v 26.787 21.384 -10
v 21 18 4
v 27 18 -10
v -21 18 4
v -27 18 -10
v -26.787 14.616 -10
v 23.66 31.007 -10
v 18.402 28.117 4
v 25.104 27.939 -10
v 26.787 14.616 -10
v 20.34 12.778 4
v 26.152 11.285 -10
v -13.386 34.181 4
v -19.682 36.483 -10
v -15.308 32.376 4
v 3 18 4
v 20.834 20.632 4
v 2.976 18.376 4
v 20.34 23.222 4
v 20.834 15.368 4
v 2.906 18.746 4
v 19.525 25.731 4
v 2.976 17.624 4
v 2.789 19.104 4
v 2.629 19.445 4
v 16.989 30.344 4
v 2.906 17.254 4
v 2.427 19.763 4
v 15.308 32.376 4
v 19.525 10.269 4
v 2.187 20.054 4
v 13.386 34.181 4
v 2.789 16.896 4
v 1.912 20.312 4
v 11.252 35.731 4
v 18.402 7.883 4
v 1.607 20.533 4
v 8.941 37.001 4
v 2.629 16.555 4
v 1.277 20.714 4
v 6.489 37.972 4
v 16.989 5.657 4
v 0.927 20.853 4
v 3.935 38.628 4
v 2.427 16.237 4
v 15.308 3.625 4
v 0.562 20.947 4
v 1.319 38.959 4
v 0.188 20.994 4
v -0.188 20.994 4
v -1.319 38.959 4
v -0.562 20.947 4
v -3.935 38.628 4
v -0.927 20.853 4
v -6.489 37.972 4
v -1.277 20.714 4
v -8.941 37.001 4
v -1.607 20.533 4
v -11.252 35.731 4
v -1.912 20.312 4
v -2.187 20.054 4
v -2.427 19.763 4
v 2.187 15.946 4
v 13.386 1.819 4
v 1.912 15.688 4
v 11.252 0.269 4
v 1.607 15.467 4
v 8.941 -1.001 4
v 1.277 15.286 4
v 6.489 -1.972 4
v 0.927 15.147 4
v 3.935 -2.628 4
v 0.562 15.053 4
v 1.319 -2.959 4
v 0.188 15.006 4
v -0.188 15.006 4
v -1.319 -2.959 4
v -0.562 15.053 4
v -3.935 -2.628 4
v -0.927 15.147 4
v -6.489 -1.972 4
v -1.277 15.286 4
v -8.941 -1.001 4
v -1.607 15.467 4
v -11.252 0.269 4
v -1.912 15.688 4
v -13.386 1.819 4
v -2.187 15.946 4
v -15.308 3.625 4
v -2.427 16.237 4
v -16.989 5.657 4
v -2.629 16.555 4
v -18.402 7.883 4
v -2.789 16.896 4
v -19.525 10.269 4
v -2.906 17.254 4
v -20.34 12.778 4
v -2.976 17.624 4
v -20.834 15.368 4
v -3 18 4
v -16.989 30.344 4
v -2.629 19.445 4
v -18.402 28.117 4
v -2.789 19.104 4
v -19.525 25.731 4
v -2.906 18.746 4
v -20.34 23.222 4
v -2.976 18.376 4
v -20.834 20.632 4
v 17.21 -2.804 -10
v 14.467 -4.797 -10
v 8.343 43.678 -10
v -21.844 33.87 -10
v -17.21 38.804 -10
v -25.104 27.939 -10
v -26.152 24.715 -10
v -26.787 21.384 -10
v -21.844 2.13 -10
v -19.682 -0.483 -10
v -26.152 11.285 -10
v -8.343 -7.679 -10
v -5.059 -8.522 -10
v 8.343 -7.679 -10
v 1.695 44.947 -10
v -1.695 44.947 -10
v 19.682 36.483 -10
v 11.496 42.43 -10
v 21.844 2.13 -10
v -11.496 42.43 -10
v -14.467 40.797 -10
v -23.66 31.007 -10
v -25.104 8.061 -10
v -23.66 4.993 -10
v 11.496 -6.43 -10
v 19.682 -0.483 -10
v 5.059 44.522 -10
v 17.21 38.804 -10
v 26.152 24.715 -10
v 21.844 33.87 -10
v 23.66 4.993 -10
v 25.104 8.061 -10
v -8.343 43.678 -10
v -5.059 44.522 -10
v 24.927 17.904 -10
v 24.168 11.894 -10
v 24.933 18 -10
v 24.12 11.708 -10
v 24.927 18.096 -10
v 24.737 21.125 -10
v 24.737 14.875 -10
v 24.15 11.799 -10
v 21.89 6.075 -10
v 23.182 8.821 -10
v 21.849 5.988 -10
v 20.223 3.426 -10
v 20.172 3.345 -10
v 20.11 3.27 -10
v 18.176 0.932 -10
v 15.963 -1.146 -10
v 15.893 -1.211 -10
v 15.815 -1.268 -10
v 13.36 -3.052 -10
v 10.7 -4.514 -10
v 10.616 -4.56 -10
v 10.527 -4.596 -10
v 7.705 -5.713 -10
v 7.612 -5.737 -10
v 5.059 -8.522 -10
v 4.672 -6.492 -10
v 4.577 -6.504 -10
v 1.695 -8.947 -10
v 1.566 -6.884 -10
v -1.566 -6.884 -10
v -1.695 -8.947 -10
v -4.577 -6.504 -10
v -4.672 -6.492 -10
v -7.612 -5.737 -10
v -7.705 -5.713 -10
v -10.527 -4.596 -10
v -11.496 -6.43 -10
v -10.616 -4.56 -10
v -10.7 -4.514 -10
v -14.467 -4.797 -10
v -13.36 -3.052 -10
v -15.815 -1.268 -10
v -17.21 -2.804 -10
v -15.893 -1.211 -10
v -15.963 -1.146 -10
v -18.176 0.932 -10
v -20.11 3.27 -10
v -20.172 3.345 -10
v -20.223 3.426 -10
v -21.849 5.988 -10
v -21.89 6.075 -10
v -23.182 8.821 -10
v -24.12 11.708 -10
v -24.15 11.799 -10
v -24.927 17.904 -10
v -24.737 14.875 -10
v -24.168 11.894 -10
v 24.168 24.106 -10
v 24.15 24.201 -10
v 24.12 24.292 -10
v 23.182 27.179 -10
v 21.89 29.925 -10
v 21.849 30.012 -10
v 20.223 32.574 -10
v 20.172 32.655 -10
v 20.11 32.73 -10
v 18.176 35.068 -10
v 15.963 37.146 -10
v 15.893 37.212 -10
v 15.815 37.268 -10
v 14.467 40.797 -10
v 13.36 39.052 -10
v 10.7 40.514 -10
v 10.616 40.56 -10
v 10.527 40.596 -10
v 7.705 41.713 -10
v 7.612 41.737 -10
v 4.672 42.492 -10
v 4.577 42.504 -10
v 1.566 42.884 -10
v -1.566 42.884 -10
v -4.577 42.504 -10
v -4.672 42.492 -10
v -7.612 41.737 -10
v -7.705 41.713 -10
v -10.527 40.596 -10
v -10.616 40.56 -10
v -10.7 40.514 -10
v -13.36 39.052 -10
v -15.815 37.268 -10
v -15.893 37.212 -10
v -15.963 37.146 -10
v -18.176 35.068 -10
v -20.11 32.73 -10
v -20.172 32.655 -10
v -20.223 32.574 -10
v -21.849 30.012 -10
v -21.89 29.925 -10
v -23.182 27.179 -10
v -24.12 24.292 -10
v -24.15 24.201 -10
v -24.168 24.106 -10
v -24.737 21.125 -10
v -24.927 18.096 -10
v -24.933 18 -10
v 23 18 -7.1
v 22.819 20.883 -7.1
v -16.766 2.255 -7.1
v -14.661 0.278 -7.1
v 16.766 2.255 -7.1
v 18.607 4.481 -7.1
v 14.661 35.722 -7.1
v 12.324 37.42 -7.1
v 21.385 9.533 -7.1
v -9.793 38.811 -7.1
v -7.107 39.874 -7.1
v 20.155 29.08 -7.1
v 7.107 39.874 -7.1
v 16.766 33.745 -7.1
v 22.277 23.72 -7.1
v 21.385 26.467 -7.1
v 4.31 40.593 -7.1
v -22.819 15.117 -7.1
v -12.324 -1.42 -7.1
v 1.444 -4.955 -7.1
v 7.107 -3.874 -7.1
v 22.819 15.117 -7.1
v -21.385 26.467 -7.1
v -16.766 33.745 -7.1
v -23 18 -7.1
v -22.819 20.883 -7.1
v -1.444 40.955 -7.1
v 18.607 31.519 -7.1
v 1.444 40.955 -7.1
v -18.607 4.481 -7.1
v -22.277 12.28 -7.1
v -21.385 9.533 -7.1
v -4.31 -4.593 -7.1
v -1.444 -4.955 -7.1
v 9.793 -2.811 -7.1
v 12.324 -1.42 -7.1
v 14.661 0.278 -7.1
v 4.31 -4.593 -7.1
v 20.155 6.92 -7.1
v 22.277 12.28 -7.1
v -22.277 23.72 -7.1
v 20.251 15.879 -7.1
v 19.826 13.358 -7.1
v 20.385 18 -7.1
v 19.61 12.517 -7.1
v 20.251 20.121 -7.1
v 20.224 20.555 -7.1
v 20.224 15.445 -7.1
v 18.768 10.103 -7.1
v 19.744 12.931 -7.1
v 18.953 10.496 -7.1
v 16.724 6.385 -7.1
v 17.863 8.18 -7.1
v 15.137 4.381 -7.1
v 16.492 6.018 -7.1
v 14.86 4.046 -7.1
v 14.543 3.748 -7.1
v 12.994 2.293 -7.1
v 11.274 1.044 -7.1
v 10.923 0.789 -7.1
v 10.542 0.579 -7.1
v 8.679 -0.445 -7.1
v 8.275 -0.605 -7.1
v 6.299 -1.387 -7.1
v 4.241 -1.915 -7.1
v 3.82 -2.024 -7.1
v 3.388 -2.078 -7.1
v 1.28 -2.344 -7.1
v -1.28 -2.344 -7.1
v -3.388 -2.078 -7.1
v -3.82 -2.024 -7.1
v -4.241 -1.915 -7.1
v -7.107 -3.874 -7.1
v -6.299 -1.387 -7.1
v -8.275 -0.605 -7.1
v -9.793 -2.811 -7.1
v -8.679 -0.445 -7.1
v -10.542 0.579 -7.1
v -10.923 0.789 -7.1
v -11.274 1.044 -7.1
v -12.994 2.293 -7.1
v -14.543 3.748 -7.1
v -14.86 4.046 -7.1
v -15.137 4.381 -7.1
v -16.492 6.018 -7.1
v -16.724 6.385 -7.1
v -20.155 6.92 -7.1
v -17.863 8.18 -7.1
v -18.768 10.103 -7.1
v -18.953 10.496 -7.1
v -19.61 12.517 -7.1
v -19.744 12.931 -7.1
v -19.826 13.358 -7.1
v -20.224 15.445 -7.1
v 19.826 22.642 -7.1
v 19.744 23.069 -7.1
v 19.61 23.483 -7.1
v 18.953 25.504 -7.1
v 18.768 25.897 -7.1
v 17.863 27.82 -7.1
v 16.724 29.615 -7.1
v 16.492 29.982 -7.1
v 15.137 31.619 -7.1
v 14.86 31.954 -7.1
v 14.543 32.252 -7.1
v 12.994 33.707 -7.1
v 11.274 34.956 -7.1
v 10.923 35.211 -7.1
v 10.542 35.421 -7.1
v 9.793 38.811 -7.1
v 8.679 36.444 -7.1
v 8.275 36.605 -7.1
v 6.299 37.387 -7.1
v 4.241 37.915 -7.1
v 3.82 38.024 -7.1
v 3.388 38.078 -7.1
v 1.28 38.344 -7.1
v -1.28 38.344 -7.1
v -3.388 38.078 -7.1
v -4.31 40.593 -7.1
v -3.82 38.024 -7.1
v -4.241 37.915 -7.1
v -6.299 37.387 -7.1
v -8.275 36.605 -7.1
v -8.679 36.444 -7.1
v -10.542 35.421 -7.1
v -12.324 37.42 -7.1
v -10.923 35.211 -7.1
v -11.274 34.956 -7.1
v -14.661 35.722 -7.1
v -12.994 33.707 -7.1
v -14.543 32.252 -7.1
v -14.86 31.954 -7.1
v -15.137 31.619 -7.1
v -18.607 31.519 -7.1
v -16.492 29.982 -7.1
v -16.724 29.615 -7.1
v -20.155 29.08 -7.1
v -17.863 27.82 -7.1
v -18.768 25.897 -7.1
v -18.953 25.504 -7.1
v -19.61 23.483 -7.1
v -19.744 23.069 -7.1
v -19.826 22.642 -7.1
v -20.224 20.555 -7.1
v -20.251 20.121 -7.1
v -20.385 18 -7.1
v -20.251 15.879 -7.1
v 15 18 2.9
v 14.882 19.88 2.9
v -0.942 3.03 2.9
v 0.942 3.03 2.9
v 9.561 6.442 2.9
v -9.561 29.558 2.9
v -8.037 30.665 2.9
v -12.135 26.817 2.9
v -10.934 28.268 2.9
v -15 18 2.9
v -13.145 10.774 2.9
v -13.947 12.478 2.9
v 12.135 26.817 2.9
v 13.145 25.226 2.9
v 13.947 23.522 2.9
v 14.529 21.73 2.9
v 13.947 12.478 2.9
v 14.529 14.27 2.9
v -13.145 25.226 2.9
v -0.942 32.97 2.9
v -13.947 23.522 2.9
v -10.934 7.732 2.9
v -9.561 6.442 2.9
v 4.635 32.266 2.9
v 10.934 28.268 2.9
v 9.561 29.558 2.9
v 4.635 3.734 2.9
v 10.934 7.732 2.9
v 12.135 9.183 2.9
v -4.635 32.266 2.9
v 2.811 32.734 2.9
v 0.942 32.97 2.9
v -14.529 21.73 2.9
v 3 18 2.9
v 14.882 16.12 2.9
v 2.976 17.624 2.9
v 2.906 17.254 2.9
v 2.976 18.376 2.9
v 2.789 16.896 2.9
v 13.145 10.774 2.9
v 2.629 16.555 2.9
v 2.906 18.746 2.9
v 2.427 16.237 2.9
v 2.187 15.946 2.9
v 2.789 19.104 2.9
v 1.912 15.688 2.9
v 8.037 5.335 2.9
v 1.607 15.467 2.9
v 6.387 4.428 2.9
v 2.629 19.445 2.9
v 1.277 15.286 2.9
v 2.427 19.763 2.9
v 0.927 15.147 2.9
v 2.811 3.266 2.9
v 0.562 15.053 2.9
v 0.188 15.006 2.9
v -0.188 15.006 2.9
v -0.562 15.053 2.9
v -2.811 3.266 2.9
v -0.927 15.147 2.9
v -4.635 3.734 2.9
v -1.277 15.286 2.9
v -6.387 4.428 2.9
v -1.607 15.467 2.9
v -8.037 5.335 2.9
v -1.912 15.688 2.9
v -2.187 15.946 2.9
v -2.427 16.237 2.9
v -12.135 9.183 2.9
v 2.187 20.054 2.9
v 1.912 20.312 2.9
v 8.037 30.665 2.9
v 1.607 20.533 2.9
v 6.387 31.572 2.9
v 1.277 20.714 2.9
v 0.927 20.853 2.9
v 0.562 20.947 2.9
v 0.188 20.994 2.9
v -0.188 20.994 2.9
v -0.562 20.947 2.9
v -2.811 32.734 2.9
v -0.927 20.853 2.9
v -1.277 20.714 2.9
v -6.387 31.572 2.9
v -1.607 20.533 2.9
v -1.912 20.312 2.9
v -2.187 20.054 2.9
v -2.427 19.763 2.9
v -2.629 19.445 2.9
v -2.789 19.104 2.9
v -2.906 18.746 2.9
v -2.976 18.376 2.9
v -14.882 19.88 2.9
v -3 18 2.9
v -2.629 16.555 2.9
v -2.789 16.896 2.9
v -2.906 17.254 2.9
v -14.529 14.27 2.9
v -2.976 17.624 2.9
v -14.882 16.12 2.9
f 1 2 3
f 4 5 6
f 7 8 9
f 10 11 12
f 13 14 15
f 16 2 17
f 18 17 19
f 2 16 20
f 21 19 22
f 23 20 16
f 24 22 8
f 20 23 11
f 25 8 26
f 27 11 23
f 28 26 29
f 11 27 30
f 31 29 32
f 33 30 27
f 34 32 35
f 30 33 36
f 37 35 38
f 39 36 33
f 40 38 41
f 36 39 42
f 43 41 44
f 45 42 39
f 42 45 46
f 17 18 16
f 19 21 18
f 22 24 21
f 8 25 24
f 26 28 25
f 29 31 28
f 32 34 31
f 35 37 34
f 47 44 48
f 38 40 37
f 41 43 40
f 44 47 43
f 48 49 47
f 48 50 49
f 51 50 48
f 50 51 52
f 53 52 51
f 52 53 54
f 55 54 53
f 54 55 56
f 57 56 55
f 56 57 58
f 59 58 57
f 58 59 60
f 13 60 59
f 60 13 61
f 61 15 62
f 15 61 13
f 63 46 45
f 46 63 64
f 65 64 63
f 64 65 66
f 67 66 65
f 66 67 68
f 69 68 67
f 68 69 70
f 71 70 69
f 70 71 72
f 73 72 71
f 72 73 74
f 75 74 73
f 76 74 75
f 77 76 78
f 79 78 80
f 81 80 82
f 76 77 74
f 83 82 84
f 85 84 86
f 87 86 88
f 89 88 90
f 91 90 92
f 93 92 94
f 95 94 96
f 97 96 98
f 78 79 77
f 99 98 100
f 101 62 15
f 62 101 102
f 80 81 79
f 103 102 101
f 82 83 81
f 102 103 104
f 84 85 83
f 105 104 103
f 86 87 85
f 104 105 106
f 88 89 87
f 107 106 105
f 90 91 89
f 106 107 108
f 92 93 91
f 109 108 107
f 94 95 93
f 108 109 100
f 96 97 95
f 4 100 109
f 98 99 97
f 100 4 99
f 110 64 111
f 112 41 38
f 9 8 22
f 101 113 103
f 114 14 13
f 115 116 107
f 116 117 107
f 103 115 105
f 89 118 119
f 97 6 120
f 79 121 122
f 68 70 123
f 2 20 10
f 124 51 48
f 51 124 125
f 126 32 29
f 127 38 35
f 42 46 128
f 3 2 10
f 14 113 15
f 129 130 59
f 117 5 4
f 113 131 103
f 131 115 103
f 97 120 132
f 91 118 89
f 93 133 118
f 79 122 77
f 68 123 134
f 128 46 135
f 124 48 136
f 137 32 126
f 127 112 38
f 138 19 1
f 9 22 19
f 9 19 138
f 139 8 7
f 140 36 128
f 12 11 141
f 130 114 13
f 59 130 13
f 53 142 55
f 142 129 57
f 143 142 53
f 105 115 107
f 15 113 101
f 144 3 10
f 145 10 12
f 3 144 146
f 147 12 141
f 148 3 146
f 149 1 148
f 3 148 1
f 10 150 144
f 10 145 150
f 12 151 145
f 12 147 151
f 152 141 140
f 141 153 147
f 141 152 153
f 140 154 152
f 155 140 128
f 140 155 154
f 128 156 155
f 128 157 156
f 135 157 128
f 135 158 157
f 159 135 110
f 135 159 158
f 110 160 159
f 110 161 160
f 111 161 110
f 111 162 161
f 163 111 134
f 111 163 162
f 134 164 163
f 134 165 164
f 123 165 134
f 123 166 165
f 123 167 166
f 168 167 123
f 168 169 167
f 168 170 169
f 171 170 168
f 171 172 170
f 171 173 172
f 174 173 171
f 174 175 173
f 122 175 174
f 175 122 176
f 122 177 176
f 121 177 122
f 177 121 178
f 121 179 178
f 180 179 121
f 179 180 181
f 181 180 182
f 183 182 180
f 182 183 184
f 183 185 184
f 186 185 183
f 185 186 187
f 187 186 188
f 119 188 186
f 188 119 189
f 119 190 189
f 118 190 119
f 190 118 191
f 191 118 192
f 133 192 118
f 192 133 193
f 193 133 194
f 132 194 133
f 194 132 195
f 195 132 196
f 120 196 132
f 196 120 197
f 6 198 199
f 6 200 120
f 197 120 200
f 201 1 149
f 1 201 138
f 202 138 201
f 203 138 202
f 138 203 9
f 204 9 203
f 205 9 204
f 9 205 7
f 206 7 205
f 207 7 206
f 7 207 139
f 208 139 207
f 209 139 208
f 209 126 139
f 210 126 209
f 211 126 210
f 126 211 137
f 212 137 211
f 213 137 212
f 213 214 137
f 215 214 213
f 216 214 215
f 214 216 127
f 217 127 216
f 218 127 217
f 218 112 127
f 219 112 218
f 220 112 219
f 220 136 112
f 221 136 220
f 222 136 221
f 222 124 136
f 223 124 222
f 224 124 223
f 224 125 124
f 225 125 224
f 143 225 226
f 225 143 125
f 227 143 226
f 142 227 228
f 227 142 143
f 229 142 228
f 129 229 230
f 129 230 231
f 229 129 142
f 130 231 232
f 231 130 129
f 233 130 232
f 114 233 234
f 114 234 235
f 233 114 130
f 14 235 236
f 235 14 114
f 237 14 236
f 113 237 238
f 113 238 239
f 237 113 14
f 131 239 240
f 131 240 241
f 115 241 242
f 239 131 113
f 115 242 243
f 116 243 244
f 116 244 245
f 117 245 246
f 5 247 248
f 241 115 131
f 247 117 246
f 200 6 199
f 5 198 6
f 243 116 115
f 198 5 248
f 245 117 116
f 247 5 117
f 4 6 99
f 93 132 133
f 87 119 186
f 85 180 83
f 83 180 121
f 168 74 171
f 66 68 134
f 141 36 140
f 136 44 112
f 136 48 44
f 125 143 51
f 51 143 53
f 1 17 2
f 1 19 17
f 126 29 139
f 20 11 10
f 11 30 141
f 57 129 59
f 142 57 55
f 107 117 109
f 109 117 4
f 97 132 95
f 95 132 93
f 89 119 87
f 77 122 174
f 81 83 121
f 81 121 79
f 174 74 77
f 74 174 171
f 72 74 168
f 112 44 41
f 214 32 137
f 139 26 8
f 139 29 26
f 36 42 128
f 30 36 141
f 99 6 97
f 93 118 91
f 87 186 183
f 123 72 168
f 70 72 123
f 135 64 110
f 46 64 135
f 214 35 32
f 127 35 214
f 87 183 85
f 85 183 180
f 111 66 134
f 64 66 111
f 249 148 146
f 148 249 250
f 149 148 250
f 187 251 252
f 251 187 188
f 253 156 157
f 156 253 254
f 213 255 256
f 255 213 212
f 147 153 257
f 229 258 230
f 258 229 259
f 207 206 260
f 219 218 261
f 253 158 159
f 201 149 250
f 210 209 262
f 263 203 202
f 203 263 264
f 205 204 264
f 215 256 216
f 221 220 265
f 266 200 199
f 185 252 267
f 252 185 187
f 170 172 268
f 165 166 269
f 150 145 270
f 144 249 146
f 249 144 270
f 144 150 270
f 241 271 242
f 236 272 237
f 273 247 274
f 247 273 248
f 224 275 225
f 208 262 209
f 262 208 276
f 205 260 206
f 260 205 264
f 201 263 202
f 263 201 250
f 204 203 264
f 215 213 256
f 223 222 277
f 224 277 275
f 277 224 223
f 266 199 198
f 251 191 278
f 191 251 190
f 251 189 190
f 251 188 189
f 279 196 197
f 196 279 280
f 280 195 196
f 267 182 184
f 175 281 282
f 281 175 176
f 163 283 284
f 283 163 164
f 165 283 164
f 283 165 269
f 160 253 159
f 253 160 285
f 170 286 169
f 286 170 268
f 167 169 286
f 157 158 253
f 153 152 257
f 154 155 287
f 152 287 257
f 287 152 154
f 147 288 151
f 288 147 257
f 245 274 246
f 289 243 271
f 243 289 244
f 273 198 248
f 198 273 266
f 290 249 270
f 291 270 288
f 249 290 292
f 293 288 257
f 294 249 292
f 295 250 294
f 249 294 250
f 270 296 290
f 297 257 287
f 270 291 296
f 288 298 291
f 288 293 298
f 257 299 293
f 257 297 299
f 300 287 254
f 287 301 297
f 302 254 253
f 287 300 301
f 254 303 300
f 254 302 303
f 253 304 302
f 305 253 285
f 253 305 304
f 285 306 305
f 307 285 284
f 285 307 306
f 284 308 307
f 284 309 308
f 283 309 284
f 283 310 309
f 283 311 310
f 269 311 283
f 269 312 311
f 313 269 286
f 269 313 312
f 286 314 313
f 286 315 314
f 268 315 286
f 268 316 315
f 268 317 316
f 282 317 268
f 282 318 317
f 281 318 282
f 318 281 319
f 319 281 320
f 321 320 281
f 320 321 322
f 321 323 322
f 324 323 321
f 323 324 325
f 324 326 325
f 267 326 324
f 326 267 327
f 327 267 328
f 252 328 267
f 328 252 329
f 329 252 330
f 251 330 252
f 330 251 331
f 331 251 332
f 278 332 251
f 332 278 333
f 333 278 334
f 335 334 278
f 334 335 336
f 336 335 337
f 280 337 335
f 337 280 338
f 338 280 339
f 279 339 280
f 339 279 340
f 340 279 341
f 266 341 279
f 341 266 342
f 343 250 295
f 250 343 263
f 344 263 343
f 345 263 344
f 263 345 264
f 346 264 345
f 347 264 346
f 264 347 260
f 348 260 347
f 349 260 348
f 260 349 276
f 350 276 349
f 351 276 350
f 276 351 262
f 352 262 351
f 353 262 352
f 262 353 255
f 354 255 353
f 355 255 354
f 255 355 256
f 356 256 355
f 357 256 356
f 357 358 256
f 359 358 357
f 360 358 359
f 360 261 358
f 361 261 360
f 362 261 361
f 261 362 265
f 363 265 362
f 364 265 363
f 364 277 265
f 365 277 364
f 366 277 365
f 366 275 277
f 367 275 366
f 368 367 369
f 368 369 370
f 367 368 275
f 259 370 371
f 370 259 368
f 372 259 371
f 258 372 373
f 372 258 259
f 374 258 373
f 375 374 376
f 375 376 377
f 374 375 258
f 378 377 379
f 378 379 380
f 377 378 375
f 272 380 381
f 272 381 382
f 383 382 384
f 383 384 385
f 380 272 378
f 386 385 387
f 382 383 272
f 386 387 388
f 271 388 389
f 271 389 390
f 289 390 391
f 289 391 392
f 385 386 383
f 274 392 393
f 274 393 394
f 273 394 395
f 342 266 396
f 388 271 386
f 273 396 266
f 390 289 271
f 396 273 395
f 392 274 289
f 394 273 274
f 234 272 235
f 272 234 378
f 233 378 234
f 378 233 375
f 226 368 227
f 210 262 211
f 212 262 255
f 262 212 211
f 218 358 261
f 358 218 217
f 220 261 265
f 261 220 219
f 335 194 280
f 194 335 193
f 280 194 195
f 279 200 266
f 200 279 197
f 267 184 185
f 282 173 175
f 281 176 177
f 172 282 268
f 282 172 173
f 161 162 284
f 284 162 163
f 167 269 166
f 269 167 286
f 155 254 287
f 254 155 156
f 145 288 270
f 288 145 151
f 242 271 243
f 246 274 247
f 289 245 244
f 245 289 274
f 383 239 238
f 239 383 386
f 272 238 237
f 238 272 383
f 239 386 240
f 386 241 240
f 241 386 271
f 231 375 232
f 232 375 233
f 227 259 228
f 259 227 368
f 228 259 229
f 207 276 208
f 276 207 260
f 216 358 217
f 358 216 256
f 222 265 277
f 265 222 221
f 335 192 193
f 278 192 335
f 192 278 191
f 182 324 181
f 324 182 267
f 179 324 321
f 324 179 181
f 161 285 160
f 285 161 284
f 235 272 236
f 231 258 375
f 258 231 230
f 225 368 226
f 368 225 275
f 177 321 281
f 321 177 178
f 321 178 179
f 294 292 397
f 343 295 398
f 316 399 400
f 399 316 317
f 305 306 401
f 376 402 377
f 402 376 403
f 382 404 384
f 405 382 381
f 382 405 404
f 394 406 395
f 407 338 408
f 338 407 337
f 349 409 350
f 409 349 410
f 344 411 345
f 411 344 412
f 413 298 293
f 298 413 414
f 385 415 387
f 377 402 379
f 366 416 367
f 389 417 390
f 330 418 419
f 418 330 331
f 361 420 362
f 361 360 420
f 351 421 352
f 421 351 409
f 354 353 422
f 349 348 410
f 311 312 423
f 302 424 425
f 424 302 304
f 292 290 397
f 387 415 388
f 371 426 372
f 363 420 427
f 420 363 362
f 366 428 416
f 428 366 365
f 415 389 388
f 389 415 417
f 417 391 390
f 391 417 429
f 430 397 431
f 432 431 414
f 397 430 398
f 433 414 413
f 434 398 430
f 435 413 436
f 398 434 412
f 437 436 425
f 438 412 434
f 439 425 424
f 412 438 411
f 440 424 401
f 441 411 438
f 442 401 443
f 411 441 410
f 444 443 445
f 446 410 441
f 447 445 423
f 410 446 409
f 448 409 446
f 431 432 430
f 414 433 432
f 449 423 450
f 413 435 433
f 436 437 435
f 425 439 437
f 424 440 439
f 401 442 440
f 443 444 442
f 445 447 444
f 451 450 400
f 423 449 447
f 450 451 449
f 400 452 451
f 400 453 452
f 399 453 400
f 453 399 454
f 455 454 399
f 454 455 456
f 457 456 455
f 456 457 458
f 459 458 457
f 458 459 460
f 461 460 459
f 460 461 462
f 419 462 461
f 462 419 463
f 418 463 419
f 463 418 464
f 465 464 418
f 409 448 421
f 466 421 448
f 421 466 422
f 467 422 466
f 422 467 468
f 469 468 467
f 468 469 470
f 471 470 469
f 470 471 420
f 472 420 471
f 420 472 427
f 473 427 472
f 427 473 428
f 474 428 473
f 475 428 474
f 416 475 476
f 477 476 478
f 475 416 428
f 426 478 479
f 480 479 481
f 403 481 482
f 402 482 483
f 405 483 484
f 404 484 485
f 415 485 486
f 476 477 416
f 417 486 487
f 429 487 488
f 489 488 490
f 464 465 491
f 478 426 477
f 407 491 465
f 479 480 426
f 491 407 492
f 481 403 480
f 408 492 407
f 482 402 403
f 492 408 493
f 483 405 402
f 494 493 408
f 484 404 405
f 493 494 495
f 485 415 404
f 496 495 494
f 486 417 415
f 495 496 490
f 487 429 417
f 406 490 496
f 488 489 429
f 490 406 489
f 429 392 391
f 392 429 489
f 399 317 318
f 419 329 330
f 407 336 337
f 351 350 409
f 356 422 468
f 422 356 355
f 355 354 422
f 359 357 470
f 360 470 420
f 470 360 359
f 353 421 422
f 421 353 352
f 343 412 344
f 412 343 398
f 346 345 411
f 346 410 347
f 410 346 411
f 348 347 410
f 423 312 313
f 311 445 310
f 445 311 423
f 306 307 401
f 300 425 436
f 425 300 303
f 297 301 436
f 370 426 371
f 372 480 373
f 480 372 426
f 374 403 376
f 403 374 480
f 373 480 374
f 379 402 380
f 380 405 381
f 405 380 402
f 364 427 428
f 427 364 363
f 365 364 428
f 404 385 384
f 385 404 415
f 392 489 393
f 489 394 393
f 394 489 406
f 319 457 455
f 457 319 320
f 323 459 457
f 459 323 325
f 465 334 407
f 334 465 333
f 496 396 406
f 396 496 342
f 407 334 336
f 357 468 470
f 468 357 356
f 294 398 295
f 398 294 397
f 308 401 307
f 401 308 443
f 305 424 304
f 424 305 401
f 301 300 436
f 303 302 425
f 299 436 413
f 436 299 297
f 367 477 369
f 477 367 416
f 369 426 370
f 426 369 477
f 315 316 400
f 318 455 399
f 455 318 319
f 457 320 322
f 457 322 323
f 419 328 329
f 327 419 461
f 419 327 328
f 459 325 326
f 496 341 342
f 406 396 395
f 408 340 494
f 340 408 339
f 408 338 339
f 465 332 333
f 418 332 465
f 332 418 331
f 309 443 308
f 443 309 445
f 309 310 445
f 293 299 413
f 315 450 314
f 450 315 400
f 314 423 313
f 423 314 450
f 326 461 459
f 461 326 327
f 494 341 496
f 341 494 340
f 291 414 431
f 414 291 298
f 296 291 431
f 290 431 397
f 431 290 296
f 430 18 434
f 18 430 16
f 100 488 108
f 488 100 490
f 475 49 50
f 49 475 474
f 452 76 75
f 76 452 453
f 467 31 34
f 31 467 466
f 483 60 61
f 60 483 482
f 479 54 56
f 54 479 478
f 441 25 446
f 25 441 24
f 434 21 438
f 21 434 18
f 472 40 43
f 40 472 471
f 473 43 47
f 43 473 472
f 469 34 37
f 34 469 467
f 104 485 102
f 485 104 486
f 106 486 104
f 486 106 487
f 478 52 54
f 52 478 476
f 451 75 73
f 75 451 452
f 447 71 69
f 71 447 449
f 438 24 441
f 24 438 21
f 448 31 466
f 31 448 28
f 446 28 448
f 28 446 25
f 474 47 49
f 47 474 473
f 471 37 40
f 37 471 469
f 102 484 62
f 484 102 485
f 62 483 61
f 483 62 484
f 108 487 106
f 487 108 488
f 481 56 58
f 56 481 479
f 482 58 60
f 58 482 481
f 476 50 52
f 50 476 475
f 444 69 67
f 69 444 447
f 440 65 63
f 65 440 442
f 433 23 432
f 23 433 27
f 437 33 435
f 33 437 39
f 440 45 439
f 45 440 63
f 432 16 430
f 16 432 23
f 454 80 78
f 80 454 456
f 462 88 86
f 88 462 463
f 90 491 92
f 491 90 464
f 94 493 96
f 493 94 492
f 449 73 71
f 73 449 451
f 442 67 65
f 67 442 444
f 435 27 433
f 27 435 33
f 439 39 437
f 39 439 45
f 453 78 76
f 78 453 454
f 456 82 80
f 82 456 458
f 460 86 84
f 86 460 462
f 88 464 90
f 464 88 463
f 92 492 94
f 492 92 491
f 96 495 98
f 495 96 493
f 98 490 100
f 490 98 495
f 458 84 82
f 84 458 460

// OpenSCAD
$fn = 50;
translate([0,18,0]) difference()
{
union() {
    difference(){
        translate([0,0,-10]) cylinder(14,27,21);
        translate([0,0,-10.1]) cylinder(3,25,23);
      translate([0,0,-10.1]) cylinder(13,22,15);
      translate([0,0,-10.1]) cylinder(13,20,10);
           

    }
}
 translate([0,0,-30]) cylinder(55,3,3);
}
